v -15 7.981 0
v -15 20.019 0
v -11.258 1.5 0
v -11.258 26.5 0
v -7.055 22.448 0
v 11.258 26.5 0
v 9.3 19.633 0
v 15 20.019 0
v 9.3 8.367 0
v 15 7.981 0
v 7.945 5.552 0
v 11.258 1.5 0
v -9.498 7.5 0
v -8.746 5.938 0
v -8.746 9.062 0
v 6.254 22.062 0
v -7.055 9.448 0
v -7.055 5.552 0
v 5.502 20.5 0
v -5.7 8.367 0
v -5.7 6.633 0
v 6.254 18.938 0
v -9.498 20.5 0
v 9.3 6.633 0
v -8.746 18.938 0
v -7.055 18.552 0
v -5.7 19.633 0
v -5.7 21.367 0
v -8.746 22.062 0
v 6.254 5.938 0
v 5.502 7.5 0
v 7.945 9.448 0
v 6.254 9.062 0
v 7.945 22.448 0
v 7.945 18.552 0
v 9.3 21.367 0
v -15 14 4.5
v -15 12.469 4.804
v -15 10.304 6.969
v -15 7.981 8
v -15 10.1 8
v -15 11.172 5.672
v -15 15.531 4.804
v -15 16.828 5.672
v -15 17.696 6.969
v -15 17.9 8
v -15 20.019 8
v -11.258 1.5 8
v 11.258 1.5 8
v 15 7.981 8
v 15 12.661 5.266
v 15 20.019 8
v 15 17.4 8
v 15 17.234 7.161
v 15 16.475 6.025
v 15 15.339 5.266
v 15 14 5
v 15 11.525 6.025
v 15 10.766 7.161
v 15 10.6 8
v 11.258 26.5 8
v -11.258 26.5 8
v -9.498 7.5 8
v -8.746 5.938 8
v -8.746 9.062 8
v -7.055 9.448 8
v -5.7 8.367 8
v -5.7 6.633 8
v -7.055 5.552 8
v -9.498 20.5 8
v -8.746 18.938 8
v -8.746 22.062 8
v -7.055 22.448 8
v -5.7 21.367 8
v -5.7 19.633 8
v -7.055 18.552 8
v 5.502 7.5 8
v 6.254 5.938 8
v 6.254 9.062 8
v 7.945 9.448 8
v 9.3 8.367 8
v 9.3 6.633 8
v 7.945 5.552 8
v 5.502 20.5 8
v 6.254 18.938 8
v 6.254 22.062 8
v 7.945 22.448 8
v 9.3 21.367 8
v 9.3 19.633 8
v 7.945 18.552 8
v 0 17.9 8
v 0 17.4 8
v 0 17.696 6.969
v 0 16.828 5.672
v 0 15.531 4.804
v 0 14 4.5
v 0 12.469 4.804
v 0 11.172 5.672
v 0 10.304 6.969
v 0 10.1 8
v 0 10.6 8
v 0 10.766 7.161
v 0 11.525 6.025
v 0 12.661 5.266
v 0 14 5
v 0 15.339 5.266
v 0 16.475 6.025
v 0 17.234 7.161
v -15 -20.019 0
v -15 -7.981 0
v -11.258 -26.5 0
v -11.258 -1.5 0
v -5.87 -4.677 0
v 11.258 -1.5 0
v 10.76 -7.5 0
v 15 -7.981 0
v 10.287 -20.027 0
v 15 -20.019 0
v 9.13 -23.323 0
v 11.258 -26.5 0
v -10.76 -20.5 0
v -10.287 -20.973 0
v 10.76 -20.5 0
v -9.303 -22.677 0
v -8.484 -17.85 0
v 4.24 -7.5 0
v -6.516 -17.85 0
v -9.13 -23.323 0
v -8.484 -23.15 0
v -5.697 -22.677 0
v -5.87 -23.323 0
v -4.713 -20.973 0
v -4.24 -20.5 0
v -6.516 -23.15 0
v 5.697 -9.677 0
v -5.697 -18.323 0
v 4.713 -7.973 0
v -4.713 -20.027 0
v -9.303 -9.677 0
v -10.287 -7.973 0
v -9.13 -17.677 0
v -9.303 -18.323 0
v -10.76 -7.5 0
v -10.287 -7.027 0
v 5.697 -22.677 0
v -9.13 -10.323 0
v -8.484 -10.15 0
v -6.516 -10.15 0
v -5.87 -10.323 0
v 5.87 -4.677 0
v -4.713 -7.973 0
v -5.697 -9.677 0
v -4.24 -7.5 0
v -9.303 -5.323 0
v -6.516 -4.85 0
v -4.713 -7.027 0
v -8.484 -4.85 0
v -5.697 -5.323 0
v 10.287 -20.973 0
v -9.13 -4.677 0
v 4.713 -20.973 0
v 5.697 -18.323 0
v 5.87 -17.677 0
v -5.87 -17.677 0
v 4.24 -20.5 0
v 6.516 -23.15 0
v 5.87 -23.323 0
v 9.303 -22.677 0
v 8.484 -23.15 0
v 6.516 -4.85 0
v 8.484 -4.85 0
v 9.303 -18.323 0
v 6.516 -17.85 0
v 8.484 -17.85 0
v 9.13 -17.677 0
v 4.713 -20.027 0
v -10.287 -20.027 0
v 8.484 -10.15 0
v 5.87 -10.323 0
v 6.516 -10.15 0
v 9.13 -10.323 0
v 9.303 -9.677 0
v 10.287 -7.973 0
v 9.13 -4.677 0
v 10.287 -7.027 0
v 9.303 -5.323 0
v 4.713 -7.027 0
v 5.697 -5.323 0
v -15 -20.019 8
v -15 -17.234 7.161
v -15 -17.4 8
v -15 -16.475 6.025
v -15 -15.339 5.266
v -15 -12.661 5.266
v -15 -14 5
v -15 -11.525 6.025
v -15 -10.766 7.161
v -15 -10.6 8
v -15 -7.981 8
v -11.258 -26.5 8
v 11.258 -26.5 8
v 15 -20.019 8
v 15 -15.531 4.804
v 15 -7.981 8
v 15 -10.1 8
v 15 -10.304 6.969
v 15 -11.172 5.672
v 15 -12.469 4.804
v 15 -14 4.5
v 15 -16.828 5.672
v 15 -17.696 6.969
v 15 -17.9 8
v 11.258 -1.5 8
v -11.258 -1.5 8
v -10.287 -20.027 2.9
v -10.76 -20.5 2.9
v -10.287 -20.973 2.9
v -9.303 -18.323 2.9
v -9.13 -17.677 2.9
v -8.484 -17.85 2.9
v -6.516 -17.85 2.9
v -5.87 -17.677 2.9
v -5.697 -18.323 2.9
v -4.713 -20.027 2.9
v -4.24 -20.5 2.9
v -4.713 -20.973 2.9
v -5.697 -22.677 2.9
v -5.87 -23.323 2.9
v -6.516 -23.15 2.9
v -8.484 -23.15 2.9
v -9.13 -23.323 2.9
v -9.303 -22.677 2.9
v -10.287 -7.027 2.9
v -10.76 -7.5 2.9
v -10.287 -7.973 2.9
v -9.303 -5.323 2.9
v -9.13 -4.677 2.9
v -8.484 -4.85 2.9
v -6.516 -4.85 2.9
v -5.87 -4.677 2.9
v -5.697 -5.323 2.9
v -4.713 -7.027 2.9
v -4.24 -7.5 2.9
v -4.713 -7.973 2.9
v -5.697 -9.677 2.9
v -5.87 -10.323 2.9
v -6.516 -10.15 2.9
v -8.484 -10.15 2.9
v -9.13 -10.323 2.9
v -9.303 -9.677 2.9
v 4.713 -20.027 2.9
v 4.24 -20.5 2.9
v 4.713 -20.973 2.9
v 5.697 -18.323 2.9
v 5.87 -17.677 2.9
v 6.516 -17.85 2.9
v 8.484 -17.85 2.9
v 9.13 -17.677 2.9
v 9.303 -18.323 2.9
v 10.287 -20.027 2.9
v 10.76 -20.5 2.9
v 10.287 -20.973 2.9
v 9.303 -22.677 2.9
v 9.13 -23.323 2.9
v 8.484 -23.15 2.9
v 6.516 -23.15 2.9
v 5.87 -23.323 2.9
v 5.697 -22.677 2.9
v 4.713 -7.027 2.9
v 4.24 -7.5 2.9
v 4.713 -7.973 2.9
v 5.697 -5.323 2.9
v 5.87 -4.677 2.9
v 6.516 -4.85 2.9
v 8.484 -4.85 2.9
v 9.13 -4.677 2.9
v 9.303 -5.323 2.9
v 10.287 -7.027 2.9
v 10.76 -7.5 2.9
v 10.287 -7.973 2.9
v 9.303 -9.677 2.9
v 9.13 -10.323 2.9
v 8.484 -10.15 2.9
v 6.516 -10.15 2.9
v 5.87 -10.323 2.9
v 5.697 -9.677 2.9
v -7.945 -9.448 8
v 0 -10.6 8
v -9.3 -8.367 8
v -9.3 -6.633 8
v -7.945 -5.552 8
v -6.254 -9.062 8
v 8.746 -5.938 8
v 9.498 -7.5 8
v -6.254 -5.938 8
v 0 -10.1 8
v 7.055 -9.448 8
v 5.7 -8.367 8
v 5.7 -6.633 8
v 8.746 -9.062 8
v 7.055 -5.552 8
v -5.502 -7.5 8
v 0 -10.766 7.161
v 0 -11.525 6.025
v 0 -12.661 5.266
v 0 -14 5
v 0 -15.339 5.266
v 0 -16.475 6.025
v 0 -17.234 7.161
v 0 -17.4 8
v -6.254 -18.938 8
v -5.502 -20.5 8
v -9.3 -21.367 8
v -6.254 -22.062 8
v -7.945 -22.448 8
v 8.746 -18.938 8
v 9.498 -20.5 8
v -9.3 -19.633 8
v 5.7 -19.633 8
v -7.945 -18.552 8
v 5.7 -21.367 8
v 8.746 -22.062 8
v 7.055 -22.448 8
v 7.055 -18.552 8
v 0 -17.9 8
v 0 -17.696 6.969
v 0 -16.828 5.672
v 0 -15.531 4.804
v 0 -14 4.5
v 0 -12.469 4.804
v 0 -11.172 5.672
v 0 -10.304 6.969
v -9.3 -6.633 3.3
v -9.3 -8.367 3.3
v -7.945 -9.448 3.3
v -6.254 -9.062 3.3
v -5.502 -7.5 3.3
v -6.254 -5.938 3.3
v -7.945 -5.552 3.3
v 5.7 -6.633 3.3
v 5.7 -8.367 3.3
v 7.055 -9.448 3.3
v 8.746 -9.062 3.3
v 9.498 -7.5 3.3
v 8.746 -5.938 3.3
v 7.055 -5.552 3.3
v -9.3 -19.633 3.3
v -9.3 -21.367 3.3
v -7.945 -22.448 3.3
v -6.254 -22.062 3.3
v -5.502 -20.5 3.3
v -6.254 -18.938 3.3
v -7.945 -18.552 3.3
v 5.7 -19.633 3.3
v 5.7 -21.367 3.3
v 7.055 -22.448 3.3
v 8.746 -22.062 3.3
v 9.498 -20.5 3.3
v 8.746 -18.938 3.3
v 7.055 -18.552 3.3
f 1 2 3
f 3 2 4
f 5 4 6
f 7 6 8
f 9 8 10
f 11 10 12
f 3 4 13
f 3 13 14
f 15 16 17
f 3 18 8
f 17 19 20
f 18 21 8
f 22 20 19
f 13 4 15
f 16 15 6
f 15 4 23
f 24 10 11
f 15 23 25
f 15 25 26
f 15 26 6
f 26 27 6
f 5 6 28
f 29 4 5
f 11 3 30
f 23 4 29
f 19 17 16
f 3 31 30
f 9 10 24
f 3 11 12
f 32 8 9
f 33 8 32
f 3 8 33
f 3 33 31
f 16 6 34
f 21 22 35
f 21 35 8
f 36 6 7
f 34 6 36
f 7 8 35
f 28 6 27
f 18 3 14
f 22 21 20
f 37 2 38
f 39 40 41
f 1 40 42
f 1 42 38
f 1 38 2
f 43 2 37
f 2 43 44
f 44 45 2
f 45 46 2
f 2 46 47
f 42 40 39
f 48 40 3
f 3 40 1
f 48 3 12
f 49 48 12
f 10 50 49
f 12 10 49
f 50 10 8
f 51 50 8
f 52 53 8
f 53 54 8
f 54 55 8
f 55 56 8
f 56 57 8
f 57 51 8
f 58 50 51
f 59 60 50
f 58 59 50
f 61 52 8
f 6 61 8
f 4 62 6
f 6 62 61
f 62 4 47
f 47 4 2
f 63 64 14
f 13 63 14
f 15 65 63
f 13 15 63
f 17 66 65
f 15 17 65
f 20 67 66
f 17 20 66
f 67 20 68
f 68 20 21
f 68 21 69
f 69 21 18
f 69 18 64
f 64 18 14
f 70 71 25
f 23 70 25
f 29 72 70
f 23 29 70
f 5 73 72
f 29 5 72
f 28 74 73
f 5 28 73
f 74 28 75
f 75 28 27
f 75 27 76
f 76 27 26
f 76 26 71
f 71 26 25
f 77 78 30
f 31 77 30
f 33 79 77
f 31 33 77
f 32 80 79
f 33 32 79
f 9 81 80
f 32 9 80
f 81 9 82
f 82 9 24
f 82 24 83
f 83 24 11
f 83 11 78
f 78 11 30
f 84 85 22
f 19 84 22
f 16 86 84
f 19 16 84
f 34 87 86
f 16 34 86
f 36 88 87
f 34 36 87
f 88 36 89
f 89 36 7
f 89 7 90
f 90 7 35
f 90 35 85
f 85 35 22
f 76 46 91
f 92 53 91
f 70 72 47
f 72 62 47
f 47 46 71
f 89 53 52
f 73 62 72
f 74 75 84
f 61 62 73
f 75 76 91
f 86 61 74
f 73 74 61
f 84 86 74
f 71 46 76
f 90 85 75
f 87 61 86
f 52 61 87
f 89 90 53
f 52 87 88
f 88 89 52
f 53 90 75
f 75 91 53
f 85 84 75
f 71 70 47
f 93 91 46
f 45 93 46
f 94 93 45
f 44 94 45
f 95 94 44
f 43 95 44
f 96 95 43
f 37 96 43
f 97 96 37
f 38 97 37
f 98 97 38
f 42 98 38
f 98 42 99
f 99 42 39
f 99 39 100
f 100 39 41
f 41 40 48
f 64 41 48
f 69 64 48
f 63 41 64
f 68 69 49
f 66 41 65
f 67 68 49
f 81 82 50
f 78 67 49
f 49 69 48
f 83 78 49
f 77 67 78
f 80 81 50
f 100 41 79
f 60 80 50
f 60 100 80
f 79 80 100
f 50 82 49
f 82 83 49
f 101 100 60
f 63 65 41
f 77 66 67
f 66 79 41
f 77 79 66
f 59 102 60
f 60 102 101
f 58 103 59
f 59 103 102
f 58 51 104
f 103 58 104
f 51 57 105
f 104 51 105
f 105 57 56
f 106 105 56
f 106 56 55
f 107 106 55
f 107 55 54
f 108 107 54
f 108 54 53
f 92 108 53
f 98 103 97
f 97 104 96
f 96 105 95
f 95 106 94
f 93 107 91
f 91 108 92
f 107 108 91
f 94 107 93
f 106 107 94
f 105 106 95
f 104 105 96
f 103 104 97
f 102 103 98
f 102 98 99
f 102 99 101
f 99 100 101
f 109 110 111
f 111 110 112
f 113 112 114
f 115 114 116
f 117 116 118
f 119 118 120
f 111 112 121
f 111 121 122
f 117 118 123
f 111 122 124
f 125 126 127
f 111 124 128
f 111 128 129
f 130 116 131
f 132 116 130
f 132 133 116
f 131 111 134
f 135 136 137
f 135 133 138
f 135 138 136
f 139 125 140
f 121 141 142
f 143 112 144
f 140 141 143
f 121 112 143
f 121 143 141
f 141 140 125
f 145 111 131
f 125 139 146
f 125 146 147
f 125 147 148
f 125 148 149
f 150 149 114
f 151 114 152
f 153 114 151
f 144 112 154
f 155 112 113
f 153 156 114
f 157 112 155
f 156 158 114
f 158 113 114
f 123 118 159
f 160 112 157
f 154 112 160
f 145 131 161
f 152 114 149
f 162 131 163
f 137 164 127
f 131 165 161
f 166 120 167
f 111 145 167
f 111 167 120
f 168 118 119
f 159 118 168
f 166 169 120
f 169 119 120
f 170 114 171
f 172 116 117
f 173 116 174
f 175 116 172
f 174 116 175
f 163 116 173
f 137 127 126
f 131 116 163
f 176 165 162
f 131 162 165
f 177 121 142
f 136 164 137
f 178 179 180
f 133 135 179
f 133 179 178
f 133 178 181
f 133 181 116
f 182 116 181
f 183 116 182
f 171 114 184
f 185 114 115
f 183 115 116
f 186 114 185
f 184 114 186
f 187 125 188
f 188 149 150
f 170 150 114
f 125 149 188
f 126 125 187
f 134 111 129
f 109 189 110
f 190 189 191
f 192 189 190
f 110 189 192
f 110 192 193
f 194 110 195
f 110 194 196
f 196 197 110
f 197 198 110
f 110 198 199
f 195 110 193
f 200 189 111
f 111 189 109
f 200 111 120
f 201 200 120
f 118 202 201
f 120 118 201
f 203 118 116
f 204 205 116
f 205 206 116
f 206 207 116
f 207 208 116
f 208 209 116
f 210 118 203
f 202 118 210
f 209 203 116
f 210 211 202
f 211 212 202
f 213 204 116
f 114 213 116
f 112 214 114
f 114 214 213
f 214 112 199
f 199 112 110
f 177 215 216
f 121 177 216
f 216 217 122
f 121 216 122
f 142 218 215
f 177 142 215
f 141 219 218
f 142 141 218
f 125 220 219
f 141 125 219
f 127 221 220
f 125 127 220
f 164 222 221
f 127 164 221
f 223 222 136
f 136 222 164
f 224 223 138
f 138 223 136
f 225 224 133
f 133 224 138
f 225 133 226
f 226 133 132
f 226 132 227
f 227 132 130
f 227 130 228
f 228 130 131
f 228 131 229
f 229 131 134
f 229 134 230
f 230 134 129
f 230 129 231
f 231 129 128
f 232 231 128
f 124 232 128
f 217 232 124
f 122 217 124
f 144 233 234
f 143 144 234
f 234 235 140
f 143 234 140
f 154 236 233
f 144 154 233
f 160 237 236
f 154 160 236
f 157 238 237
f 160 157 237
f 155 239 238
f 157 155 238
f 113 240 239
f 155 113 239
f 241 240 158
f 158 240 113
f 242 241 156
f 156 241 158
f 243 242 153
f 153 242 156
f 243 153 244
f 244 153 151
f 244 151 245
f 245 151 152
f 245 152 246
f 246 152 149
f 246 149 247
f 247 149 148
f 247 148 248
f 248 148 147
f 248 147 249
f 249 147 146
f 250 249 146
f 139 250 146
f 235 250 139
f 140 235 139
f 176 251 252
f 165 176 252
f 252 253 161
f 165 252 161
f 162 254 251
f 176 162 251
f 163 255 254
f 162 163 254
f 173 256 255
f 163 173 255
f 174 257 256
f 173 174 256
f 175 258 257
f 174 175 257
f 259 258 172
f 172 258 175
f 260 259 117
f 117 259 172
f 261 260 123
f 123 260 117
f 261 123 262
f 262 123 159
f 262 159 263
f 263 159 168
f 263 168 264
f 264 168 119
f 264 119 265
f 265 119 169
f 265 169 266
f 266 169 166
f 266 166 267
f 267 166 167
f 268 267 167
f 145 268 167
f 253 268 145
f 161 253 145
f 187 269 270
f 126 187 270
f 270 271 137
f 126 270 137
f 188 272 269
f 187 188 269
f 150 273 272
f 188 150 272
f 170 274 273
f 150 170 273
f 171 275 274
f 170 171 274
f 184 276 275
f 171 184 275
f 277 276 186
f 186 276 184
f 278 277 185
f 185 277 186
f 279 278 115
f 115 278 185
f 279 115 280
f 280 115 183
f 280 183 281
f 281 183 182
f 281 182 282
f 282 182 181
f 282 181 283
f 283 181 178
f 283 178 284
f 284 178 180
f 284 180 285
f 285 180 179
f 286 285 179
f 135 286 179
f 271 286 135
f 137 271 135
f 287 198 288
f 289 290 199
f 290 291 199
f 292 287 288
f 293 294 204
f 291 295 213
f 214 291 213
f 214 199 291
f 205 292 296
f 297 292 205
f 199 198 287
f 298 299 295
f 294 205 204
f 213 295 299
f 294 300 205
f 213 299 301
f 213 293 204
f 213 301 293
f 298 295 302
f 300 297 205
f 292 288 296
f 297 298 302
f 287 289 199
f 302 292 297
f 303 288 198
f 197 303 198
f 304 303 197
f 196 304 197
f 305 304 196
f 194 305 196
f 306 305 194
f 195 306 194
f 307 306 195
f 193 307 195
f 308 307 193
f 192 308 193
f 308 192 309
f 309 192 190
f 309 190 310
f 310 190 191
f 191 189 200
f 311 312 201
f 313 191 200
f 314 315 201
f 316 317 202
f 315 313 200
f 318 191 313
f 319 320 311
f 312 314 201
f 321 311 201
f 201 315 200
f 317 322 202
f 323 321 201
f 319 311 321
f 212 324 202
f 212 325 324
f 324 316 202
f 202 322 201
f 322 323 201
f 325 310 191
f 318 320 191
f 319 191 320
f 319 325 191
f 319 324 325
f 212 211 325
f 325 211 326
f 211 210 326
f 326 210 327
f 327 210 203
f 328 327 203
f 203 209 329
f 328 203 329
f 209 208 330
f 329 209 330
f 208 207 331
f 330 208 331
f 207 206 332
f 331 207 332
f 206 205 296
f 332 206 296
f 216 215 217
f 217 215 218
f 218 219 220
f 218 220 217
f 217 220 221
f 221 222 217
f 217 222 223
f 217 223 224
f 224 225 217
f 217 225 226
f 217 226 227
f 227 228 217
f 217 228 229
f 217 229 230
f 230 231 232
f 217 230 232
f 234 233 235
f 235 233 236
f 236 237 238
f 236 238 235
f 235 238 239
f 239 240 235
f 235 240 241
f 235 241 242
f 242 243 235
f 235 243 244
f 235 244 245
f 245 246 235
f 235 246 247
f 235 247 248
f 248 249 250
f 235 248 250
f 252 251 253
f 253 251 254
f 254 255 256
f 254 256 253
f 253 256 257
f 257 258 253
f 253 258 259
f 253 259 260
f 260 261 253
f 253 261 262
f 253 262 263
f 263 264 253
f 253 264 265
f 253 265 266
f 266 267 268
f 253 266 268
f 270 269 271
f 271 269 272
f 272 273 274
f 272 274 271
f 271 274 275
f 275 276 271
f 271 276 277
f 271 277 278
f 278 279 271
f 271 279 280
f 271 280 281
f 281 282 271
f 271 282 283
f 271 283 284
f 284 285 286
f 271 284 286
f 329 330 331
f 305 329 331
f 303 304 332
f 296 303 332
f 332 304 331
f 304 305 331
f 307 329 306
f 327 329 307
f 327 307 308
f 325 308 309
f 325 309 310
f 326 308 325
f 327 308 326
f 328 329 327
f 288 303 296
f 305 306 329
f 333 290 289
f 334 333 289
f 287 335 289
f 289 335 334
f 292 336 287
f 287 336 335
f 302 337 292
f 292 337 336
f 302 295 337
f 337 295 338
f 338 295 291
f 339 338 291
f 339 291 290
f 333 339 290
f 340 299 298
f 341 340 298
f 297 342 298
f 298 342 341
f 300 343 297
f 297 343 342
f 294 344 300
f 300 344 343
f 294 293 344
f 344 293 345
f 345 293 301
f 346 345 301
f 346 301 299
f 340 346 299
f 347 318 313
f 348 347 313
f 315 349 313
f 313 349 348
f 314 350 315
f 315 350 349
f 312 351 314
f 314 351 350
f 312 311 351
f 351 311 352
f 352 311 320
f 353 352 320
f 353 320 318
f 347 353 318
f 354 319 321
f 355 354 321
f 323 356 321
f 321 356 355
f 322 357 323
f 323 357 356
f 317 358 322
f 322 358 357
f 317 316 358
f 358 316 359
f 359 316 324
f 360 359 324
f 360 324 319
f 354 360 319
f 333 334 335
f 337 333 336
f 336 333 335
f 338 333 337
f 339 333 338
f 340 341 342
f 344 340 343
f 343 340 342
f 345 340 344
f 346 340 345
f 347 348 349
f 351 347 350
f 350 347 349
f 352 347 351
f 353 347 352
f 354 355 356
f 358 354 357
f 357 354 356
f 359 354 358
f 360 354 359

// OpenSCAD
// file: prusafunc.scad
// miPrinter
// https://github.com/3DprintFIT/miPrinter
// Functions used in many files from Prusa Mendel
// GNU GPL v3
// Josef Průša
// nophead

module nut(d,h,horizontal=true) {
	cornerdiameter =  (d / 2) / cos (180 / 6);
	cylinder(h = h, r = cornerdiameter, $fn = 6);
	if(horizontal) {
		for(i = [1:6]){
			rotate([0,0,60*i]) translate([-cornerdiameter-0.2,0,0]) rotate([0,0,-45]) cube(size = [2,2,h]);
		}
	}
}

// Based on nophead research
module polyhole(d,h) {
	n = max(round(2 * d),3);
	rotate([0,0,180])
		cylinder(h = h, r = (d / 2) / cos (180 / n), $fn = n);
}

module roundcorner(diameter) {
	difference() {
		cube(size = [diameter,diameter,99], center = false);
		translate(v = [diameter, diameter, 0]) cylinder(h = 100, r=diameter, center=true);
	}
}
// file: configuration.scad
// This is part of miPrint package
// GNU GPL version 3

print = 200;
wall = 5;
rod = 8;
minirod = 3;
motorw = 43;
motorh = 47;
inf = 500;
bearingd = 7+1; // including 1 washer
bearingr = 11+0.5; // including clearance
layer = 0.3;

// RAIL: http://eshop.prodance.cz/fotocache/add/620612_1.jpg
rail = 10; // outside
raildepth = 15;

// Prusa parts
use <prusafunc.scad>;

linear = true;
lme8uu=true;
m8_diameter = 9;
m8_nut_diameter = 14.1;
m3_diameter = 3.6;
m3_nut_diameter = 5.3;
thin_wall = 3;
xend_width = 32;
// main file
// This one is AWESOME design by NOPHEAD

// PRUSA Mendel  
// Coupling from nophead
// GNU GPL v3
// Josef Průša
// josefprusa@me.com
// prusadjs.cz
// http://www.reprap.org/wiki/Prusa_Mendel
// http://github.com/prusajr/PrusaMendel

include <configuration.scad>

/**
 * @id coupling
 * @name Coupling
 * @category Printed
 * @using 4 m3x20
 * @using 4 m3washer
 * @using 4 m3nut
 * @step Place M3 nuts in all nut traps.
 * @step Insert screws with washers on them and tighet it just a bit.
 */

/**
 * 20mm long piece of PVC tube. 5mm inside diameter, 8mm outside diameter.
 * @id coupling-tube
 * @name Coupling tube
 * @category Nuts&bolts
 */

holeX = 7.5;
holeY = 6.5;

holeR = 3.4;
nutR = 3.25;
nutH = 3;
corner_cut = 26;

studding_dia = 8.0;
shaft_dia = 7.0;

module coupling(c){
    union(){
        difference(){
            cube(size = [30,25,8], center = true);

            if(c==1){
                //slot
            	*cube(size = [2,40,30], center = true);
                
                //nut holes
            	translate([ holeX,  holeY, nutH/2 - 4.01-3/2]) nut(m3_nut_diameter,3);
            	translate([ holeX, -holeY, nutH/2 - 4.01-3/2]) nut(m3_nut_diameter,3);
            	translate([-holeX,  holeY, nutH/2 - 4.01-3/2]) nut(m3_nut_diameter,3);
            	translate([-holeX, -holeY, nutH/2 - 4.01-3/2]) nut(m3_nut_diameter,3);
            }

            //shaft groves
            translate([ -16, 0, 4.5]) rotate([0,90,0]) cylinder(h = 16, r=studding_dia / 2, $fn=16);
            translate([-0.5, 0, 4.5]) rotate([0,90,0]) cylinder(h = 16, r=shaft_dia / 2,    $fn=16);

            //screw holes
            translate([ holeX,  holeY, -10]) polyhole(m3_diameter,20);
            translate([ holeX, -holeY, -10]) polyhole(m3_diameter,20);
            translate([-holeX,  holeY, -10]) polyhole(m3_diameter,20);
            translate([-holeX, -holeY, -10]) polyhole(m3_diameter,20);

            //corners
            rotate([0,0,30])   translate([corner_cut, 0, 0]) cube(size = [20,40,20], center = true);
            rotate([0,0,-30])  translate([corner_cut, 0, 0]) cube(size = [20,40,20], center = true);
            rotate([0,0,150])  translate([corner_cut, 0, 0]) cube(size = [20,40,20], center = true);
            rotate([0,0,-150]) translate([corner_cut, 0, 0]) cube(size = [20,40,20], center = true);
        }
        if(c==1){
            // bridge
        	translate([ holeX,  holeY, nutH-3.9]) cylinder(h = 0.4, r=nutR+0.1, $fn=6, center=true);
        	translate([ holeX, -holeY, nutH-3.9]) cylinder(h = 0.4, r=nutR+0.1, $fn=6, center=true);
        	translate([-holeX,  holeY, nutH-3.9]) cylinder(h = 0.4, r=nutR+0.1, $fn=6, center=true);
        	translate([-holeX, -holeY, nutH-3.9]) cylinder(h = 0.4, r=nutR+0.1, $fn=6, center=true);
        }
    }
}

translate([0, 14, 4]) coupling(c=0);
translate([0, -14, 4]) rotate([0,0,180]) coupling(c=1);
